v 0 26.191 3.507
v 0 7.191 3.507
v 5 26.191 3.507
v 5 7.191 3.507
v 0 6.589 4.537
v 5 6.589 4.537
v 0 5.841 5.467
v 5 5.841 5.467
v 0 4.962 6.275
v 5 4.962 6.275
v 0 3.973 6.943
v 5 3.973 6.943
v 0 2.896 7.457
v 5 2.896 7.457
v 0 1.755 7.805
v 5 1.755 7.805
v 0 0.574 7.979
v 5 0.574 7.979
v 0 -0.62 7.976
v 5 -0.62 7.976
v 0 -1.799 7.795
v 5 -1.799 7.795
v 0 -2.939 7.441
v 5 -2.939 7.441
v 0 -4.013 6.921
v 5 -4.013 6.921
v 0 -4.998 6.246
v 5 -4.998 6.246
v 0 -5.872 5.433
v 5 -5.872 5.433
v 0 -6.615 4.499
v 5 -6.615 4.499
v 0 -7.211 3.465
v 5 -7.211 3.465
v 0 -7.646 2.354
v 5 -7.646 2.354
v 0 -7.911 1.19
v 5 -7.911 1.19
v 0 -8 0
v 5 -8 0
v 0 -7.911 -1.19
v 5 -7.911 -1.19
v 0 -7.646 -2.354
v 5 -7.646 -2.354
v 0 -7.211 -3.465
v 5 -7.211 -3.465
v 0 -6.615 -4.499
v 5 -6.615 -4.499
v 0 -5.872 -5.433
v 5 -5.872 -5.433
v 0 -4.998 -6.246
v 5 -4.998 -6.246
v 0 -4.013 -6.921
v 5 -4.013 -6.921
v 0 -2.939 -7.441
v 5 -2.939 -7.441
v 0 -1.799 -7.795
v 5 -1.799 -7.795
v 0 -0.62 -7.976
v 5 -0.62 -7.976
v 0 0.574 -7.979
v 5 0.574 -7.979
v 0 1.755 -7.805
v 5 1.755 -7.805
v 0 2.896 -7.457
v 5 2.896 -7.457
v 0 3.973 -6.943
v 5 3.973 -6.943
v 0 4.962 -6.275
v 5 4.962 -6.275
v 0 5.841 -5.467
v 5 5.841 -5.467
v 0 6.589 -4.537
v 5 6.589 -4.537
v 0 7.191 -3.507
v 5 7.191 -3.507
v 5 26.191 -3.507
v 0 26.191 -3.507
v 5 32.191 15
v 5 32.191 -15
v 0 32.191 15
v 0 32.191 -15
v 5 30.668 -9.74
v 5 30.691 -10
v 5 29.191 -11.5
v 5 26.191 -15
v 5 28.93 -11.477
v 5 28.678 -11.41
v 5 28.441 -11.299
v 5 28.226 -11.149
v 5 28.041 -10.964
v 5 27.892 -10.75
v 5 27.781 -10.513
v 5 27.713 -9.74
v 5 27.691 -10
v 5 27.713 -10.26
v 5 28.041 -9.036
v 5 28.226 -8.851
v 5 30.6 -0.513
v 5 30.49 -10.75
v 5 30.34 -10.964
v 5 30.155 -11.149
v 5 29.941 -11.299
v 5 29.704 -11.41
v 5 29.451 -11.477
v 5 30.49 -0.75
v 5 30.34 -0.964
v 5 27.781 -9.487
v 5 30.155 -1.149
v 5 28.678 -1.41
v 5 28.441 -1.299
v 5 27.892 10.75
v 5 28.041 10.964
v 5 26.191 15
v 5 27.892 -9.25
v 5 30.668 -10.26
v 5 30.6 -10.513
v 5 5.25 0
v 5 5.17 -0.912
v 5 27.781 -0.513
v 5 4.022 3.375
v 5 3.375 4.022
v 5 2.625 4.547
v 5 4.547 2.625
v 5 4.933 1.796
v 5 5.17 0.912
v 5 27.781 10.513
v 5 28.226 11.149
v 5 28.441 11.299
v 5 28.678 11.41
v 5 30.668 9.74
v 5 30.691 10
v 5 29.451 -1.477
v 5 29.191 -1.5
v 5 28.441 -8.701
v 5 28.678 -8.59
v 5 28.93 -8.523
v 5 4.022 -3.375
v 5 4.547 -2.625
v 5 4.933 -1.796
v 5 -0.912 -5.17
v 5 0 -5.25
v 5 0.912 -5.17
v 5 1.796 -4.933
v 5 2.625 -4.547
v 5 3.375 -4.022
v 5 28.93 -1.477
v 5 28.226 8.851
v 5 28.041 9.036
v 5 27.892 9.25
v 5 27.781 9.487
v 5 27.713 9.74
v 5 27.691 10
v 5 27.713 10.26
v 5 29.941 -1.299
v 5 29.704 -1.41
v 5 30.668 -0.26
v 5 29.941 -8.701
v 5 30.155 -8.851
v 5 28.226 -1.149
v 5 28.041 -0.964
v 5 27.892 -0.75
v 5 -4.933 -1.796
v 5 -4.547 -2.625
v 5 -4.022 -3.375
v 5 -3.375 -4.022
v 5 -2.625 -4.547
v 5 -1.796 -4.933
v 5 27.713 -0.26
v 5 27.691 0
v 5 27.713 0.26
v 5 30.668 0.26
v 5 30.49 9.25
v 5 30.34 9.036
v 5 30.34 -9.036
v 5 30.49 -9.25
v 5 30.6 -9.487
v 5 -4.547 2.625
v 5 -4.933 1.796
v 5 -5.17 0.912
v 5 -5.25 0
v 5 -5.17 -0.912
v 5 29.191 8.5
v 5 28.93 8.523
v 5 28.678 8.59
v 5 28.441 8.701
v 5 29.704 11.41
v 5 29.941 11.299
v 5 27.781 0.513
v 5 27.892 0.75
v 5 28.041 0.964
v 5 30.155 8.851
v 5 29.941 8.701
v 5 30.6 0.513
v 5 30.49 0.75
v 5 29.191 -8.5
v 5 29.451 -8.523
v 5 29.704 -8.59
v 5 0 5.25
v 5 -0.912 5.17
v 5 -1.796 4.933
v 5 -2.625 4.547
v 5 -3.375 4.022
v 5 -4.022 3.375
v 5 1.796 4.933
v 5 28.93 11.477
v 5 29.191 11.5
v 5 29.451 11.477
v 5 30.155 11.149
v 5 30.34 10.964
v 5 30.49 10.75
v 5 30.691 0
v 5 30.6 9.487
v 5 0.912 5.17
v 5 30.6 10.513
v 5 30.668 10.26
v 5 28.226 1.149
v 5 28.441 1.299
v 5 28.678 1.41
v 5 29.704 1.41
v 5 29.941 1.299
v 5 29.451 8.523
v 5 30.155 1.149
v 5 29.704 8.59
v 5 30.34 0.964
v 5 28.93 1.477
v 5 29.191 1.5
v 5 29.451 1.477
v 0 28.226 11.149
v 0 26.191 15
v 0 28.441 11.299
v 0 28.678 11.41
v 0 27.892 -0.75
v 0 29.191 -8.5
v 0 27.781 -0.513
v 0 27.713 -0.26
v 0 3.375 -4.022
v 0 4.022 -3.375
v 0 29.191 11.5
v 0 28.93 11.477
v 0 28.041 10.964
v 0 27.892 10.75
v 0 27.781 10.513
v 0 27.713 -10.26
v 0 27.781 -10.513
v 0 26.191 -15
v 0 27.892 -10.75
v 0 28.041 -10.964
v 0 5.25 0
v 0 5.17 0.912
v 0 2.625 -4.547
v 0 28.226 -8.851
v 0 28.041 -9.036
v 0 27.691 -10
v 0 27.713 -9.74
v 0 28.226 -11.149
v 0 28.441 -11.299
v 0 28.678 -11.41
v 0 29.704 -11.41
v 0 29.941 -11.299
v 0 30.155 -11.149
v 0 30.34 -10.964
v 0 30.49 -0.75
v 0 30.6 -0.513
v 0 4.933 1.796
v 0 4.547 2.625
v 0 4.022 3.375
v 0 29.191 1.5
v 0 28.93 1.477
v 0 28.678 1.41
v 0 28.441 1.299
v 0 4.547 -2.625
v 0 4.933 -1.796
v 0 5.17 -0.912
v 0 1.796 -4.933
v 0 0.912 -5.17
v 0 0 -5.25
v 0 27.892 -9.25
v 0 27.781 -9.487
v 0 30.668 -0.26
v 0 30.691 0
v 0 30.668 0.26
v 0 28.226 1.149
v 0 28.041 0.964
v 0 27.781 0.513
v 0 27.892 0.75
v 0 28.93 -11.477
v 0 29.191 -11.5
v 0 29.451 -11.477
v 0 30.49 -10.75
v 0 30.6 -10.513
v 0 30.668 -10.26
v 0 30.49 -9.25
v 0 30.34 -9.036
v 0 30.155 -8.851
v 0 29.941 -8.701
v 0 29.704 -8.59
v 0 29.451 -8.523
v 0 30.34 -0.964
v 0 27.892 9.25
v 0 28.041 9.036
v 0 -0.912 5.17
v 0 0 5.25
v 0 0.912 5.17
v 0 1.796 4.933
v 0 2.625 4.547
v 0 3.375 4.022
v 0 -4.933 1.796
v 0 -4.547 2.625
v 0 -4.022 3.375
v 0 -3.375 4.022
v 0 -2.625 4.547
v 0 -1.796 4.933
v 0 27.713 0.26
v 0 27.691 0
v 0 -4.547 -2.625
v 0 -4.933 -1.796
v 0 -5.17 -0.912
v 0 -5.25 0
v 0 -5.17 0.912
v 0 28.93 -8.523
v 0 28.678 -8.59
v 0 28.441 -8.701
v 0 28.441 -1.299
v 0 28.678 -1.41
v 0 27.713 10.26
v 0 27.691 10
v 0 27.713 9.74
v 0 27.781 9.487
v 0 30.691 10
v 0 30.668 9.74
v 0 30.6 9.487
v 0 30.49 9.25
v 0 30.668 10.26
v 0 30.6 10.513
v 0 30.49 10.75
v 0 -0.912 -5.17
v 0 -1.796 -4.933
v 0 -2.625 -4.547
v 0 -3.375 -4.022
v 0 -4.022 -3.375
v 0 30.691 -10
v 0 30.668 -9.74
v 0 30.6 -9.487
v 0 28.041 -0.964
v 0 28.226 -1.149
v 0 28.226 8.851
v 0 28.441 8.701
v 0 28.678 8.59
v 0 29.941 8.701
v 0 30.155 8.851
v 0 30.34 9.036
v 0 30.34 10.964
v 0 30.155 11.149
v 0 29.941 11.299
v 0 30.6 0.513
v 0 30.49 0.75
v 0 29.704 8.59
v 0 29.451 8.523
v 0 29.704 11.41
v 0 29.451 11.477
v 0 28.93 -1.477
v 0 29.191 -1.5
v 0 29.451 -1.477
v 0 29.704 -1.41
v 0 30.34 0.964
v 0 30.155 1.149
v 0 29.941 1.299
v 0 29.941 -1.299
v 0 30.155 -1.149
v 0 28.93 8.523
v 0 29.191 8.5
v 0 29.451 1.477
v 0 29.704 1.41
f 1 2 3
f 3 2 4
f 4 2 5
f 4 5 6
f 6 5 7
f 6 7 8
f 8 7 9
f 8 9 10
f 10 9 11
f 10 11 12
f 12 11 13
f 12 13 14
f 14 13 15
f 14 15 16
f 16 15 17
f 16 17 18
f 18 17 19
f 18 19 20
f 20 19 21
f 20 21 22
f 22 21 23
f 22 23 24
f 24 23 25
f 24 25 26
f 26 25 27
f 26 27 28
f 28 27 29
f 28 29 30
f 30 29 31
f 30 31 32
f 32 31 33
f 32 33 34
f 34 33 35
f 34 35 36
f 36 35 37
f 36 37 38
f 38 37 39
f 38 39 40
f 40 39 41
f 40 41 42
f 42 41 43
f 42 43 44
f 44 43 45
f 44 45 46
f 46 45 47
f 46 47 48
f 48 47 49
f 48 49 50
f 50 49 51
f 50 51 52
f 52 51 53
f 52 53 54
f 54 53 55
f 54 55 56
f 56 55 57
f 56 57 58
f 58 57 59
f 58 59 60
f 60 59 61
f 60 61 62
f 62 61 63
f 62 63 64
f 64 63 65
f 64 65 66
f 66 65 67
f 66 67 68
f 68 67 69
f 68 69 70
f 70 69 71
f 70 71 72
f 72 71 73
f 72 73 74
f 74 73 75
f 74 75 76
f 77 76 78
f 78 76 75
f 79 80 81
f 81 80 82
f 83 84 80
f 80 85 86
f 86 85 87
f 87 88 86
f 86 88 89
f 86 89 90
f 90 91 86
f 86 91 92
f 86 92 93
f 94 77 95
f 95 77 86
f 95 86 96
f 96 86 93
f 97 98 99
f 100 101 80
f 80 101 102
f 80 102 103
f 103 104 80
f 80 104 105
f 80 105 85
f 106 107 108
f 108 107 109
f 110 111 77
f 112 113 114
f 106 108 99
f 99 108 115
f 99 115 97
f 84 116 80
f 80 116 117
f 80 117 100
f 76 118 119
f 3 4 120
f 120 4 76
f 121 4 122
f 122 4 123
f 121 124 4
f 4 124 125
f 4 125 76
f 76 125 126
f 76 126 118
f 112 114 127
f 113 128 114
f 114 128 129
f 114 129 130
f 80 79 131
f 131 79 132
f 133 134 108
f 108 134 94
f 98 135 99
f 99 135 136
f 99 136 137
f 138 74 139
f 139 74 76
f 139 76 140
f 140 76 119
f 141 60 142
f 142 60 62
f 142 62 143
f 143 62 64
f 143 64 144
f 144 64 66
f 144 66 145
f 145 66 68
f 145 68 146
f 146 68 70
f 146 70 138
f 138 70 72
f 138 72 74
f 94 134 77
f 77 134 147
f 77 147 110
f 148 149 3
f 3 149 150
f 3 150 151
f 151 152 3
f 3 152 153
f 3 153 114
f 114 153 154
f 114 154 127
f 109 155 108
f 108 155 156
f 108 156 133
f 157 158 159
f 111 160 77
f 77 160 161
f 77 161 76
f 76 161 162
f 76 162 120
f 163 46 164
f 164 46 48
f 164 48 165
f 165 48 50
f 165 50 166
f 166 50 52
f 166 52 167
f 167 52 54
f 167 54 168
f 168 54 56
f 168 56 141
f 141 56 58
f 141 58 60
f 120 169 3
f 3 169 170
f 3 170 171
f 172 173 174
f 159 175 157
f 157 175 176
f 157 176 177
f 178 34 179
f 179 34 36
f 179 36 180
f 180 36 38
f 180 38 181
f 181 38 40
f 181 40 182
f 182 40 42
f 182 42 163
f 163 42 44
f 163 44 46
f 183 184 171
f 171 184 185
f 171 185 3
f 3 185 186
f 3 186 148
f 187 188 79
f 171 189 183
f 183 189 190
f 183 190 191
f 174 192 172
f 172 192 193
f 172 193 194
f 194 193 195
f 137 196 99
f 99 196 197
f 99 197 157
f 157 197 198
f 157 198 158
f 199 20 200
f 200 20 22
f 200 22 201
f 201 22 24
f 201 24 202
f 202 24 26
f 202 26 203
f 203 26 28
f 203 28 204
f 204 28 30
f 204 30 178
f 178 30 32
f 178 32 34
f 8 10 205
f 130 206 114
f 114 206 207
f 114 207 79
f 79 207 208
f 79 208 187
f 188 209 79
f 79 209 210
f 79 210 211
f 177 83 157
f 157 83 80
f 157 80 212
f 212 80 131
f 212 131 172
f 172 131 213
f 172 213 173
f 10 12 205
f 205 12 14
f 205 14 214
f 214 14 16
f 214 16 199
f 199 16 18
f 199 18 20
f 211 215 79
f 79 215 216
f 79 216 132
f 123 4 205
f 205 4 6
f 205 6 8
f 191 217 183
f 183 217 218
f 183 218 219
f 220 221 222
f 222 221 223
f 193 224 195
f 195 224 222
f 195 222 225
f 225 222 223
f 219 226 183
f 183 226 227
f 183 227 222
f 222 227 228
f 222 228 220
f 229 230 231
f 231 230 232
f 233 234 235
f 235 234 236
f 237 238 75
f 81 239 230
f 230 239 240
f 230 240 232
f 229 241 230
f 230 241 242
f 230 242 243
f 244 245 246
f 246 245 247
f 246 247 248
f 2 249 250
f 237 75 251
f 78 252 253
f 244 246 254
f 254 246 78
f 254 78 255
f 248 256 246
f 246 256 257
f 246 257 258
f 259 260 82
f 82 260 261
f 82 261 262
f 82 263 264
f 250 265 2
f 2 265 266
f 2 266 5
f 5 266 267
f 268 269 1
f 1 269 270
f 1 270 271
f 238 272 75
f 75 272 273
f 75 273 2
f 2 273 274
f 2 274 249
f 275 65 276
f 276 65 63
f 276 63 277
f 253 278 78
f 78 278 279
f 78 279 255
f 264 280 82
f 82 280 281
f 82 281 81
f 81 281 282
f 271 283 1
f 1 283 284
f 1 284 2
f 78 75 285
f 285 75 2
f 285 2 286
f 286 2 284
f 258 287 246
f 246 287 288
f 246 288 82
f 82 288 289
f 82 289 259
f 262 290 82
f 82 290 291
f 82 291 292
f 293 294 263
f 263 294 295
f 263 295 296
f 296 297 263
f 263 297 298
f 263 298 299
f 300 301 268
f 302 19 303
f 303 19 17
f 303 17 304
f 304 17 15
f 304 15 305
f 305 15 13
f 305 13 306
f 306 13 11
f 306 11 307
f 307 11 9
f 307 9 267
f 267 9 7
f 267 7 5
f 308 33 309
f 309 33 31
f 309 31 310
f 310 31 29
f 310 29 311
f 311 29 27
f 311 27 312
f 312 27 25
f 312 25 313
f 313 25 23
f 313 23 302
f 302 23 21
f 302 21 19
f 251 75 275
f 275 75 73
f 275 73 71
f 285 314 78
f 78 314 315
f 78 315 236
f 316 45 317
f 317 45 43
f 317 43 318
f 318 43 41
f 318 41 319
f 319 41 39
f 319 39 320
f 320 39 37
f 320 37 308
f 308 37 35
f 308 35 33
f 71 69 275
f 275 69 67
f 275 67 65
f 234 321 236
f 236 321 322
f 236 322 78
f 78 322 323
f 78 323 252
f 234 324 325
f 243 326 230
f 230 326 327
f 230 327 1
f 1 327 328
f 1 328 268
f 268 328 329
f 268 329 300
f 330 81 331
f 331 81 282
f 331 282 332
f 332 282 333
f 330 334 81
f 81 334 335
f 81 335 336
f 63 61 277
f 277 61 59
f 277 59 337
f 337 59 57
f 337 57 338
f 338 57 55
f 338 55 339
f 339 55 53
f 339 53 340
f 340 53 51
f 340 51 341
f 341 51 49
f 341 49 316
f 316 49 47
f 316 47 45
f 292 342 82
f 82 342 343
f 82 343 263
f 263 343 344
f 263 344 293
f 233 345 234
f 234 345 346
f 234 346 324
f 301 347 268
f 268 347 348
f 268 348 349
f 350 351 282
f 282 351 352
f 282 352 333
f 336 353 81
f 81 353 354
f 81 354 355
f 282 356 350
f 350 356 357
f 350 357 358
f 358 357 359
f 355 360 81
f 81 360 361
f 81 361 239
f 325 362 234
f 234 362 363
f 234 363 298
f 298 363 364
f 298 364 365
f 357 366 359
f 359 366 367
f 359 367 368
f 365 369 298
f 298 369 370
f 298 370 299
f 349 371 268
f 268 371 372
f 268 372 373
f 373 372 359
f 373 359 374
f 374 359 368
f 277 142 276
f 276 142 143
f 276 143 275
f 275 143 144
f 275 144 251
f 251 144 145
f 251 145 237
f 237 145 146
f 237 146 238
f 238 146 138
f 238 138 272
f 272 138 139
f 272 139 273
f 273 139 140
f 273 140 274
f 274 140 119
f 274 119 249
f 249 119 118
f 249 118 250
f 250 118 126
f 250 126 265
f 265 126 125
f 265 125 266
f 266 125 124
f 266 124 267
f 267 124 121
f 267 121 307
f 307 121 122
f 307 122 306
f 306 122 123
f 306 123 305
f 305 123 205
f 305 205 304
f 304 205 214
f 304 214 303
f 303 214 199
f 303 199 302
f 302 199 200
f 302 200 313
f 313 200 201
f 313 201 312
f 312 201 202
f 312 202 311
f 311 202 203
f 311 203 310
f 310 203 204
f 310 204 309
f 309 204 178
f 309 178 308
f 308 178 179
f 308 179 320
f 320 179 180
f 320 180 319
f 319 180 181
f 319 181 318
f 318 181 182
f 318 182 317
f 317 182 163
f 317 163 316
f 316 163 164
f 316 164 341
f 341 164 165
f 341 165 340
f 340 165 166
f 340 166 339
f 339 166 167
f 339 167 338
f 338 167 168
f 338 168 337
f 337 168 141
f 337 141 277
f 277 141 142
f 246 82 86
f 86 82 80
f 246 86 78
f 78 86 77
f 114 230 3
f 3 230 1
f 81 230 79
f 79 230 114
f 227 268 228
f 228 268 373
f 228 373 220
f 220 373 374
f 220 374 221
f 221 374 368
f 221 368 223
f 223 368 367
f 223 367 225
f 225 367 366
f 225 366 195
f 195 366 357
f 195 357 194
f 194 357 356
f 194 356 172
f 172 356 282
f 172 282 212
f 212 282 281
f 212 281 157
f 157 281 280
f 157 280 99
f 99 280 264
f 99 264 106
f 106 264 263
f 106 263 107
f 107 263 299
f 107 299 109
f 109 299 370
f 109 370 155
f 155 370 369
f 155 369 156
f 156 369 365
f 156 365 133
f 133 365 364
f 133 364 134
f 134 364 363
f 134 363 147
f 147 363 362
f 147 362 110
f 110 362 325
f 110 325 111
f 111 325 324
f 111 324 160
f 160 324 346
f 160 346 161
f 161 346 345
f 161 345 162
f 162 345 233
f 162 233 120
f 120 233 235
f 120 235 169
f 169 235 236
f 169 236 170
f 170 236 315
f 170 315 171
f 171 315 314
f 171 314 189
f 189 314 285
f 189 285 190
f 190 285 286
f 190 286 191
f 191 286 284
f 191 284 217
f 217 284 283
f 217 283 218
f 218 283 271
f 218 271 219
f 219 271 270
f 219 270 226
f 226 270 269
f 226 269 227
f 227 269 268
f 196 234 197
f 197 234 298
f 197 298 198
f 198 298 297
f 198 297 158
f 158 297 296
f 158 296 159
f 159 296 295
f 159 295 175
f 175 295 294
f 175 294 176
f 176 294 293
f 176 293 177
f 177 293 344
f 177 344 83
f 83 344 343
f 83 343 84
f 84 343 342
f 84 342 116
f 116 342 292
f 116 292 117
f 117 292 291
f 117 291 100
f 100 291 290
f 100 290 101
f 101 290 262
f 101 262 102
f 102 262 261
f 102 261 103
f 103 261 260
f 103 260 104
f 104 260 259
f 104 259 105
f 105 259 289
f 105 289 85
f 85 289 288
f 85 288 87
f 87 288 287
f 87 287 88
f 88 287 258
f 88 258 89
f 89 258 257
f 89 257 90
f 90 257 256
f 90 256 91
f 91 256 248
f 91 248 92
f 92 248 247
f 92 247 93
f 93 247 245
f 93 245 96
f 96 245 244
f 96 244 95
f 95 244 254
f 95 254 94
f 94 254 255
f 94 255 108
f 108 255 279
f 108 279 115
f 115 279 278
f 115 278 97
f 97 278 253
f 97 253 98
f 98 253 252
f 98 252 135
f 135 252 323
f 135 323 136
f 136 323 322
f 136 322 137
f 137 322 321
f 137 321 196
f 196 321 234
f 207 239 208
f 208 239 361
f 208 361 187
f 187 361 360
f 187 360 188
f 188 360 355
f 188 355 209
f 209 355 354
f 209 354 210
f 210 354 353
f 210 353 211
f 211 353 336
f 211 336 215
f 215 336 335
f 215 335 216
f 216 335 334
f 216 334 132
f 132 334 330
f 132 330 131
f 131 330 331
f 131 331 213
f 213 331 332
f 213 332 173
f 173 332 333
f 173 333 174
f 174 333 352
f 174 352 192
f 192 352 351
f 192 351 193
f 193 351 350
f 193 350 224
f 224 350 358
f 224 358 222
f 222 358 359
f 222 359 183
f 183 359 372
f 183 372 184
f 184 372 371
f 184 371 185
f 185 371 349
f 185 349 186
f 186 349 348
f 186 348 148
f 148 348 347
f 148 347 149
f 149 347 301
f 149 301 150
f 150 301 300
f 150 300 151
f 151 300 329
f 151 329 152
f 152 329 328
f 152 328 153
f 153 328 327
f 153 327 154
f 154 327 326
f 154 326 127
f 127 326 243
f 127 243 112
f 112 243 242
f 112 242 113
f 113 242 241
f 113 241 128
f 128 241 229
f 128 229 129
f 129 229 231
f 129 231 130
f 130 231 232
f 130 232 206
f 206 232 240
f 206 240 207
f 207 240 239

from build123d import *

# Parameters (mm, degrees)
EXTRUDE_1_DEPTH     = 5
SKETCH_5_R          = 5.25
CUT_EXTRUDE_1_DEPTH = 5
EXTRUDE_3_DEPTH     = 5
SKETCH_10_R         = 1.5
CUT_EXTRUDE_2_DEPTH = 36.864078478


with BuildPart() as part:
    # 草图1 → 凸台-拉伸1 (new body)
    with BuildSketch(Plane(origin=(0, 0, 0), x_dir=(0, 0, -1), z_dir=(1, 0, 0))):
        with BuildLine():
            Line((3.506544331, 7.190559565), (3.506544331, 32.190559565))
            Line((3.506544331, 32.190559565), (-3.506544331, 32.190559565))
            Line((-3.506544331, 32.190559565), (-3.506544331, 7.190559565))
            ThreePointArc((-3.506544331, 7.190559565), (0, -8), (3.506544331, 7.190559565))
        make_face()
    extrude(amount=EXTRUDE_1_DEPTH)

    # 草图5 → 切除-拉伸1 (cut)
    with BuildSketch(Plane(origin=(5, 0, 0), x_dir=(0, 0, -1), z_dir=(1, 0, 0))):
        Circle(SKETCH_5_R)
    extrude(amount=-CUT_EXTRUDE_1_DEPTH, mode=Mode.SUBTRACT)

    # 草图9 → 凸台-拉伸3 (add)
    with BuildSketch(Plane(origin=(5, 0, 0), x_dir=(0, 0, -1), z_dir=(1, 0, 0))):
        Polygon((-3.506544331, 32.190559565), (15, 32.190559565), (15, 26.190559565), (-15, 26.190559565), (-15, 32.190559565), align=None)
    extrude(amount=-EXTRUDE_3_DEPTH)

    # 草图10 → 切除-拉伸2 (cut, through all)
    with BuildSketch(Plane.ZY):
        with Locations((0, 29.190559565)):
            Circle(SKETCH_10_R)
        with Locations((-10, 29.190559565)):
            Circle(SKETCH_10_R)
        with Locations((10, 29.190559565)):
            Circle(SKETCH_10_R)
    extrude(amount=-CUT_EXTRUDE_2_DEPTH, mode=Mode.SUBTRACT)


solid = part.part
